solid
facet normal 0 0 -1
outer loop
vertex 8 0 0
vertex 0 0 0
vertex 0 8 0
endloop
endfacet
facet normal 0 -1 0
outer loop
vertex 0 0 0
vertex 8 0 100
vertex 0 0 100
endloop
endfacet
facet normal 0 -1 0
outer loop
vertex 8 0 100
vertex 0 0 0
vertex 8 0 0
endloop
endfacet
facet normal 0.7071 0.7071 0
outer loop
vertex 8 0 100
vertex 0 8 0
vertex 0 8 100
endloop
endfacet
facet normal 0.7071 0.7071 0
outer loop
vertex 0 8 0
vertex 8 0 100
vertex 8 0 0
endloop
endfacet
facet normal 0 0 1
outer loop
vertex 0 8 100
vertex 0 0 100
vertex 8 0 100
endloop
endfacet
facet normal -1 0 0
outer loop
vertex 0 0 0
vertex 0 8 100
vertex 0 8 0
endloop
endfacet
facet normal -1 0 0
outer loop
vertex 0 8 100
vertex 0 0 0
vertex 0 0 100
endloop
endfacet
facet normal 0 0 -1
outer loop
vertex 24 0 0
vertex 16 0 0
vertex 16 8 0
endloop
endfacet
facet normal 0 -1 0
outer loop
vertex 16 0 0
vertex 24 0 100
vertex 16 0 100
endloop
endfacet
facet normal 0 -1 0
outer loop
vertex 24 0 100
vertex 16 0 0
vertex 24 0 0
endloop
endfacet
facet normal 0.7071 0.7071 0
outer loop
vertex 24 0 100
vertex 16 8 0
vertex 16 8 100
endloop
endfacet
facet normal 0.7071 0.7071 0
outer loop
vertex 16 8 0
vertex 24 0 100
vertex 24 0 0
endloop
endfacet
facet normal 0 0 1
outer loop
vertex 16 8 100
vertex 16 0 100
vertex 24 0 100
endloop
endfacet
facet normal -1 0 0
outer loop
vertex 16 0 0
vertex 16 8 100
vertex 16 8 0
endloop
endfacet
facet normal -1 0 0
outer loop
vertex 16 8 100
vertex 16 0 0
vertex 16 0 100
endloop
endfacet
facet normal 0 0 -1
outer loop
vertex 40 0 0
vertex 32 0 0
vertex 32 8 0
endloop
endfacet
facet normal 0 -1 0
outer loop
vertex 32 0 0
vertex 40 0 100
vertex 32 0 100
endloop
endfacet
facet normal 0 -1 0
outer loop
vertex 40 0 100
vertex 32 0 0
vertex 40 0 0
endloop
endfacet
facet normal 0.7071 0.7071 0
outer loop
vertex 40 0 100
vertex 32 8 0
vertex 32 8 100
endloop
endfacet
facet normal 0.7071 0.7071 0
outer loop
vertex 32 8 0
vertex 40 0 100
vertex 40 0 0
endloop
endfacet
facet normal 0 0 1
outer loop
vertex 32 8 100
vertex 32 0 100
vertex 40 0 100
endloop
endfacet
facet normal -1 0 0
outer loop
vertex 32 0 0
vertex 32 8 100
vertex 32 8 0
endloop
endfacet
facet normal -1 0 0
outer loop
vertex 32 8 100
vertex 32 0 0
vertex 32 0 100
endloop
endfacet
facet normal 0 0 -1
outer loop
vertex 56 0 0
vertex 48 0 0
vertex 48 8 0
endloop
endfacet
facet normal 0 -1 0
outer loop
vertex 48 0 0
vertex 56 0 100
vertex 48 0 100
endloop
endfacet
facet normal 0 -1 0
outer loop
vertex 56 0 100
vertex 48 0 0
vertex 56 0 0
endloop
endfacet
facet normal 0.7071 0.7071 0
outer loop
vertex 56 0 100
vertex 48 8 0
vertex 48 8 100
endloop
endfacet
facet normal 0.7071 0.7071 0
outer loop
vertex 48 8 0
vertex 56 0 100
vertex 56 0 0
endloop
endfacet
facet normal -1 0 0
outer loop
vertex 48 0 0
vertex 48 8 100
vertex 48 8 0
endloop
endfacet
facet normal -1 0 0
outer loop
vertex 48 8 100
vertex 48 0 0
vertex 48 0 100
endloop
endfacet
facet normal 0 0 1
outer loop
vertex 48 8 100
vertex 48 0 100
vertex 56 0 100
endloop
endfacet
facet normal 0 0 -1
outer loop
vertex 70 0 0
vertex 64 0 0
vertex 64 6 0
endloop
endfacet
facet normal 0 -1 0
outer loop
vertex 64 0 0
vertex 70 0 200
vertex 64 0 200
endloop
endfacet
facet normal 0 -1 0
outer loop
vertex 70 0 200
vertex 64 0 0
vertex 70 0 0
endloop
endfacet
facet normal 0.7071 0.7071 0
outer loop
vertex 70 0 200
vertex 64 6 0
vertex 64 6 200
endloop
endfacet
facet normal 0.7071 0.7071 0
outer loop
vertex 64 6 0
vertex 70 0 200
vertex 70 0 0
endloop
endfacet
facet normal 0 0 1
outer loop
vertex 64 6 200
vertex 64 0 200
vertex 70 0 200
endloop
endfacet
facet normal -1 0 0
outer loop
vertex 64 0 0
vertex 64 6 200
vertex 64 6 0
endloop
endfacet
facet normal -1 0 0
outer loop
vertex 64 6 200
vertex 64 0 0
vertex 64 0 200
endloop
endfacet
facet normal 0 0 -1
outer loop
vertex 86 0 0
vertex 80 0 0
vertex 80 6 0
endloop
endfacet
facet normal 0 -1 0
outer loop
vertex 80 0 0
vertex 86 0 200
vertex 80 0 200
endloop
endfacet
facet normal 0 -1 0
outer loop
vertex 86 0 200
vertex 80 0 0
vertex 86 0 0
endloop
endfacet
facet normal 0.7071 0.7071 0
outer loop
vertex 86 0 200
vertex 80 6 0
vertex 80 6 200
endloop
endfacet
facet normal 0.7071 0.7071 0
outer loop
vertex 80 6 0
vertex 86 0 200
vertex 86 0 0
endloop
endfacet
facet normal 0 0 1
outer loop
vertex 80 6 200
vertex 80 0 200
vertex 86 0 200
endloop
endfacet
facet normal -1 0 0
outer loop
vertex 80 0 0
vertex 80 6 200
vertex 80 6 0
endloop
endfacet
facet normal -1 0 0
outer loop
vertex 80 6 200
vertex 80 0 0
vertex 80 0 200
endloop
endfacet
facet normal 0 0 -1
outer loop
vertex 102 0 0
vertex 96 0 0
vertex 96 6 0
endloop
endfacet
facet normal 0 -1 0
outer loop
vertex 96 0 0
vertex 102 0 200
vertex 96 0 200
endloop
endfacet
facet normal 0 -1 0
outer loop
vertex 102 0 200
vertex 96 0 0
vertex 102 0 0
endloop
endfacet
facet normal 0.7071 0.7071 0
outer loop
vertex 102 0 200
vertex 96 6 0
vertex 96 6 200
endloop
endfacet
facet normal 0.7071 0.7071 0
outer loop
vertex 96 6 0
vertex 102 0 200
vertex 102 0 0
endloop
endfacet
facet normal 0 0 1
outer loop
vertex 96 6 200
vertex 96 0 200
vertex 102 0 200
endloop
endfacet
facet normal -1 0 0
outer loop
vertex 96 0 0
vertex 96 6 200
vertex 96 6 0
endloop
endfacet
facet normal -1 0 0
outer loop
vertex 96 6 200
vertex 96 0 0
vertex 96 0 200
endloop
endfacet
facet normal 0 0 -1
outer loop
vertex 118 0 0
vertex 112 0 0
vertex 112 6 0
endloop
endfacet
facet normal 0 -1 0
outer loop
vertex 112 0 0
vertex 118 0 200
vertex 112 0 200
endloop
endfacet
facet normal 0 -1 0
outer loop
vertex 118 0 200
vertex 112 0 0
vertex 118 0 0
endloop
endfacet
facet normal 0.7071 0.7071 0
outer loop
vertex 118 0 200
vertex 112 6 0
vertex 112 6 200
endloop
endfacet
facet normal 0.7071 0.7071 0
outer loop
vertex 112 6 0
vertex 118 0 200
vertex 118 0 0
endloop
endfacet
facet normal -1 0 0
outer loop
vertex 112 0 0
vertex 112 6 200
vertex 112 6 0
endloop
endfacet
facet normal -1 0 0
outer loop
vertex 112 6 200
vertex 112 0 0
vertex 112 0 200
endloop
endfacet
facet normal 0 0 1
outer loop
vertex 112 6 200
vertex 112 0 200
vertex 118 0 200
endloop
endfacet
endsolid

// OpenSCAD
// file: params.scad
// Global Parameters for Dimon brace

// The HSS is a HSS 127x127x13 G40.20

HSS_d = 127.0;
HSS_b = 127.0;
HSS_t = 12.7;
HSS_l = 250.0;    //length of HSS for model

// The tongue plate (welded into slot in HSS)

TP_t = 20.0;
// TP_w = 280.0;  // width of plate
TP_w = 250.0;
TP_l = 250.0;   // total length
TP_lw = 100.0;  // length of welded portion

// cover plate (welded on HSS)

CP_t = 10;
CP_w = 60;
CP_l = 200;
CP_setback = 10;
CP_lw = CP_l;

// welds

TP_D = 8;
CP_D = 6;

// Bolts

BOLT_d = 20;    // diameter
BOLT_hd = BOLT_d + 2;    // hole diameter
// BOLT_s = 75;             // longitudinal spacing (pitch)
// BOLT_g = 75;             // transverse spacing (gauge)
BOLT_s = 70;             // longitudinal spacing (pitch)
BOLT_g = 70;             // transverse spacing (gauge)
BOLT_NG = 3;             // number of gauge lines (across)
BOLT_NT = 2;             // number of transverse lines
// BOLT_e = 40;		 // end distance
BOLT_e = 35;		 // end distance

// Gusset plate

GP_w = TP_w;
GP_t = TP_t;
// GP_w2 = 110;
GP_w2 = 70;
GP_theta = 45;
GP_l1 = GP_w2 + GP_w*cos(GP_theta);   // dist out to furthest pt
GP_l = GP_l1*tan(GP_theta) + GP_w*sin(GP_theta);
// GP_gap = 10;		// gap to tongue plate
GP_gap = 5;		// gap to tongue plate

// Lap Plate

LP_t = 10;
LP_w = 230;
LP_l = 2*(BOLT_NT-1)*BOLT_s + 4*BOLT_e + GP_gap;


// misc.

$fn = 60;       // number of sides for poly approx to circles
// main file
include <params.scad>;

module weld(D,L) {
    pts = [[0,0],[D,0],[0,D]];
    linear_extrude(L) polygon(pts);
}

render() {
    weld(TP_D,TP_lw);
    translate([2*TP_D,0,0]) weld(TP_D,TP_lw);
    translate([4*TP_D,0,0]) weld(TP_D,TP_lw);
    translate([6*TP_D,0,0]) weld(TP_D,TP_lw);
    translate([8*TP_D,0,0]) weld(CP_D,CP_lw);
    translate([10*TP_D,0,0]) weld(CP_D,CP_lw);
    translate([12*TP_D,0,0]) weld(CP_D,CP_lw);
    translate([14*TP_D,0,0]) weld(CP_D,CP_lw);
}
